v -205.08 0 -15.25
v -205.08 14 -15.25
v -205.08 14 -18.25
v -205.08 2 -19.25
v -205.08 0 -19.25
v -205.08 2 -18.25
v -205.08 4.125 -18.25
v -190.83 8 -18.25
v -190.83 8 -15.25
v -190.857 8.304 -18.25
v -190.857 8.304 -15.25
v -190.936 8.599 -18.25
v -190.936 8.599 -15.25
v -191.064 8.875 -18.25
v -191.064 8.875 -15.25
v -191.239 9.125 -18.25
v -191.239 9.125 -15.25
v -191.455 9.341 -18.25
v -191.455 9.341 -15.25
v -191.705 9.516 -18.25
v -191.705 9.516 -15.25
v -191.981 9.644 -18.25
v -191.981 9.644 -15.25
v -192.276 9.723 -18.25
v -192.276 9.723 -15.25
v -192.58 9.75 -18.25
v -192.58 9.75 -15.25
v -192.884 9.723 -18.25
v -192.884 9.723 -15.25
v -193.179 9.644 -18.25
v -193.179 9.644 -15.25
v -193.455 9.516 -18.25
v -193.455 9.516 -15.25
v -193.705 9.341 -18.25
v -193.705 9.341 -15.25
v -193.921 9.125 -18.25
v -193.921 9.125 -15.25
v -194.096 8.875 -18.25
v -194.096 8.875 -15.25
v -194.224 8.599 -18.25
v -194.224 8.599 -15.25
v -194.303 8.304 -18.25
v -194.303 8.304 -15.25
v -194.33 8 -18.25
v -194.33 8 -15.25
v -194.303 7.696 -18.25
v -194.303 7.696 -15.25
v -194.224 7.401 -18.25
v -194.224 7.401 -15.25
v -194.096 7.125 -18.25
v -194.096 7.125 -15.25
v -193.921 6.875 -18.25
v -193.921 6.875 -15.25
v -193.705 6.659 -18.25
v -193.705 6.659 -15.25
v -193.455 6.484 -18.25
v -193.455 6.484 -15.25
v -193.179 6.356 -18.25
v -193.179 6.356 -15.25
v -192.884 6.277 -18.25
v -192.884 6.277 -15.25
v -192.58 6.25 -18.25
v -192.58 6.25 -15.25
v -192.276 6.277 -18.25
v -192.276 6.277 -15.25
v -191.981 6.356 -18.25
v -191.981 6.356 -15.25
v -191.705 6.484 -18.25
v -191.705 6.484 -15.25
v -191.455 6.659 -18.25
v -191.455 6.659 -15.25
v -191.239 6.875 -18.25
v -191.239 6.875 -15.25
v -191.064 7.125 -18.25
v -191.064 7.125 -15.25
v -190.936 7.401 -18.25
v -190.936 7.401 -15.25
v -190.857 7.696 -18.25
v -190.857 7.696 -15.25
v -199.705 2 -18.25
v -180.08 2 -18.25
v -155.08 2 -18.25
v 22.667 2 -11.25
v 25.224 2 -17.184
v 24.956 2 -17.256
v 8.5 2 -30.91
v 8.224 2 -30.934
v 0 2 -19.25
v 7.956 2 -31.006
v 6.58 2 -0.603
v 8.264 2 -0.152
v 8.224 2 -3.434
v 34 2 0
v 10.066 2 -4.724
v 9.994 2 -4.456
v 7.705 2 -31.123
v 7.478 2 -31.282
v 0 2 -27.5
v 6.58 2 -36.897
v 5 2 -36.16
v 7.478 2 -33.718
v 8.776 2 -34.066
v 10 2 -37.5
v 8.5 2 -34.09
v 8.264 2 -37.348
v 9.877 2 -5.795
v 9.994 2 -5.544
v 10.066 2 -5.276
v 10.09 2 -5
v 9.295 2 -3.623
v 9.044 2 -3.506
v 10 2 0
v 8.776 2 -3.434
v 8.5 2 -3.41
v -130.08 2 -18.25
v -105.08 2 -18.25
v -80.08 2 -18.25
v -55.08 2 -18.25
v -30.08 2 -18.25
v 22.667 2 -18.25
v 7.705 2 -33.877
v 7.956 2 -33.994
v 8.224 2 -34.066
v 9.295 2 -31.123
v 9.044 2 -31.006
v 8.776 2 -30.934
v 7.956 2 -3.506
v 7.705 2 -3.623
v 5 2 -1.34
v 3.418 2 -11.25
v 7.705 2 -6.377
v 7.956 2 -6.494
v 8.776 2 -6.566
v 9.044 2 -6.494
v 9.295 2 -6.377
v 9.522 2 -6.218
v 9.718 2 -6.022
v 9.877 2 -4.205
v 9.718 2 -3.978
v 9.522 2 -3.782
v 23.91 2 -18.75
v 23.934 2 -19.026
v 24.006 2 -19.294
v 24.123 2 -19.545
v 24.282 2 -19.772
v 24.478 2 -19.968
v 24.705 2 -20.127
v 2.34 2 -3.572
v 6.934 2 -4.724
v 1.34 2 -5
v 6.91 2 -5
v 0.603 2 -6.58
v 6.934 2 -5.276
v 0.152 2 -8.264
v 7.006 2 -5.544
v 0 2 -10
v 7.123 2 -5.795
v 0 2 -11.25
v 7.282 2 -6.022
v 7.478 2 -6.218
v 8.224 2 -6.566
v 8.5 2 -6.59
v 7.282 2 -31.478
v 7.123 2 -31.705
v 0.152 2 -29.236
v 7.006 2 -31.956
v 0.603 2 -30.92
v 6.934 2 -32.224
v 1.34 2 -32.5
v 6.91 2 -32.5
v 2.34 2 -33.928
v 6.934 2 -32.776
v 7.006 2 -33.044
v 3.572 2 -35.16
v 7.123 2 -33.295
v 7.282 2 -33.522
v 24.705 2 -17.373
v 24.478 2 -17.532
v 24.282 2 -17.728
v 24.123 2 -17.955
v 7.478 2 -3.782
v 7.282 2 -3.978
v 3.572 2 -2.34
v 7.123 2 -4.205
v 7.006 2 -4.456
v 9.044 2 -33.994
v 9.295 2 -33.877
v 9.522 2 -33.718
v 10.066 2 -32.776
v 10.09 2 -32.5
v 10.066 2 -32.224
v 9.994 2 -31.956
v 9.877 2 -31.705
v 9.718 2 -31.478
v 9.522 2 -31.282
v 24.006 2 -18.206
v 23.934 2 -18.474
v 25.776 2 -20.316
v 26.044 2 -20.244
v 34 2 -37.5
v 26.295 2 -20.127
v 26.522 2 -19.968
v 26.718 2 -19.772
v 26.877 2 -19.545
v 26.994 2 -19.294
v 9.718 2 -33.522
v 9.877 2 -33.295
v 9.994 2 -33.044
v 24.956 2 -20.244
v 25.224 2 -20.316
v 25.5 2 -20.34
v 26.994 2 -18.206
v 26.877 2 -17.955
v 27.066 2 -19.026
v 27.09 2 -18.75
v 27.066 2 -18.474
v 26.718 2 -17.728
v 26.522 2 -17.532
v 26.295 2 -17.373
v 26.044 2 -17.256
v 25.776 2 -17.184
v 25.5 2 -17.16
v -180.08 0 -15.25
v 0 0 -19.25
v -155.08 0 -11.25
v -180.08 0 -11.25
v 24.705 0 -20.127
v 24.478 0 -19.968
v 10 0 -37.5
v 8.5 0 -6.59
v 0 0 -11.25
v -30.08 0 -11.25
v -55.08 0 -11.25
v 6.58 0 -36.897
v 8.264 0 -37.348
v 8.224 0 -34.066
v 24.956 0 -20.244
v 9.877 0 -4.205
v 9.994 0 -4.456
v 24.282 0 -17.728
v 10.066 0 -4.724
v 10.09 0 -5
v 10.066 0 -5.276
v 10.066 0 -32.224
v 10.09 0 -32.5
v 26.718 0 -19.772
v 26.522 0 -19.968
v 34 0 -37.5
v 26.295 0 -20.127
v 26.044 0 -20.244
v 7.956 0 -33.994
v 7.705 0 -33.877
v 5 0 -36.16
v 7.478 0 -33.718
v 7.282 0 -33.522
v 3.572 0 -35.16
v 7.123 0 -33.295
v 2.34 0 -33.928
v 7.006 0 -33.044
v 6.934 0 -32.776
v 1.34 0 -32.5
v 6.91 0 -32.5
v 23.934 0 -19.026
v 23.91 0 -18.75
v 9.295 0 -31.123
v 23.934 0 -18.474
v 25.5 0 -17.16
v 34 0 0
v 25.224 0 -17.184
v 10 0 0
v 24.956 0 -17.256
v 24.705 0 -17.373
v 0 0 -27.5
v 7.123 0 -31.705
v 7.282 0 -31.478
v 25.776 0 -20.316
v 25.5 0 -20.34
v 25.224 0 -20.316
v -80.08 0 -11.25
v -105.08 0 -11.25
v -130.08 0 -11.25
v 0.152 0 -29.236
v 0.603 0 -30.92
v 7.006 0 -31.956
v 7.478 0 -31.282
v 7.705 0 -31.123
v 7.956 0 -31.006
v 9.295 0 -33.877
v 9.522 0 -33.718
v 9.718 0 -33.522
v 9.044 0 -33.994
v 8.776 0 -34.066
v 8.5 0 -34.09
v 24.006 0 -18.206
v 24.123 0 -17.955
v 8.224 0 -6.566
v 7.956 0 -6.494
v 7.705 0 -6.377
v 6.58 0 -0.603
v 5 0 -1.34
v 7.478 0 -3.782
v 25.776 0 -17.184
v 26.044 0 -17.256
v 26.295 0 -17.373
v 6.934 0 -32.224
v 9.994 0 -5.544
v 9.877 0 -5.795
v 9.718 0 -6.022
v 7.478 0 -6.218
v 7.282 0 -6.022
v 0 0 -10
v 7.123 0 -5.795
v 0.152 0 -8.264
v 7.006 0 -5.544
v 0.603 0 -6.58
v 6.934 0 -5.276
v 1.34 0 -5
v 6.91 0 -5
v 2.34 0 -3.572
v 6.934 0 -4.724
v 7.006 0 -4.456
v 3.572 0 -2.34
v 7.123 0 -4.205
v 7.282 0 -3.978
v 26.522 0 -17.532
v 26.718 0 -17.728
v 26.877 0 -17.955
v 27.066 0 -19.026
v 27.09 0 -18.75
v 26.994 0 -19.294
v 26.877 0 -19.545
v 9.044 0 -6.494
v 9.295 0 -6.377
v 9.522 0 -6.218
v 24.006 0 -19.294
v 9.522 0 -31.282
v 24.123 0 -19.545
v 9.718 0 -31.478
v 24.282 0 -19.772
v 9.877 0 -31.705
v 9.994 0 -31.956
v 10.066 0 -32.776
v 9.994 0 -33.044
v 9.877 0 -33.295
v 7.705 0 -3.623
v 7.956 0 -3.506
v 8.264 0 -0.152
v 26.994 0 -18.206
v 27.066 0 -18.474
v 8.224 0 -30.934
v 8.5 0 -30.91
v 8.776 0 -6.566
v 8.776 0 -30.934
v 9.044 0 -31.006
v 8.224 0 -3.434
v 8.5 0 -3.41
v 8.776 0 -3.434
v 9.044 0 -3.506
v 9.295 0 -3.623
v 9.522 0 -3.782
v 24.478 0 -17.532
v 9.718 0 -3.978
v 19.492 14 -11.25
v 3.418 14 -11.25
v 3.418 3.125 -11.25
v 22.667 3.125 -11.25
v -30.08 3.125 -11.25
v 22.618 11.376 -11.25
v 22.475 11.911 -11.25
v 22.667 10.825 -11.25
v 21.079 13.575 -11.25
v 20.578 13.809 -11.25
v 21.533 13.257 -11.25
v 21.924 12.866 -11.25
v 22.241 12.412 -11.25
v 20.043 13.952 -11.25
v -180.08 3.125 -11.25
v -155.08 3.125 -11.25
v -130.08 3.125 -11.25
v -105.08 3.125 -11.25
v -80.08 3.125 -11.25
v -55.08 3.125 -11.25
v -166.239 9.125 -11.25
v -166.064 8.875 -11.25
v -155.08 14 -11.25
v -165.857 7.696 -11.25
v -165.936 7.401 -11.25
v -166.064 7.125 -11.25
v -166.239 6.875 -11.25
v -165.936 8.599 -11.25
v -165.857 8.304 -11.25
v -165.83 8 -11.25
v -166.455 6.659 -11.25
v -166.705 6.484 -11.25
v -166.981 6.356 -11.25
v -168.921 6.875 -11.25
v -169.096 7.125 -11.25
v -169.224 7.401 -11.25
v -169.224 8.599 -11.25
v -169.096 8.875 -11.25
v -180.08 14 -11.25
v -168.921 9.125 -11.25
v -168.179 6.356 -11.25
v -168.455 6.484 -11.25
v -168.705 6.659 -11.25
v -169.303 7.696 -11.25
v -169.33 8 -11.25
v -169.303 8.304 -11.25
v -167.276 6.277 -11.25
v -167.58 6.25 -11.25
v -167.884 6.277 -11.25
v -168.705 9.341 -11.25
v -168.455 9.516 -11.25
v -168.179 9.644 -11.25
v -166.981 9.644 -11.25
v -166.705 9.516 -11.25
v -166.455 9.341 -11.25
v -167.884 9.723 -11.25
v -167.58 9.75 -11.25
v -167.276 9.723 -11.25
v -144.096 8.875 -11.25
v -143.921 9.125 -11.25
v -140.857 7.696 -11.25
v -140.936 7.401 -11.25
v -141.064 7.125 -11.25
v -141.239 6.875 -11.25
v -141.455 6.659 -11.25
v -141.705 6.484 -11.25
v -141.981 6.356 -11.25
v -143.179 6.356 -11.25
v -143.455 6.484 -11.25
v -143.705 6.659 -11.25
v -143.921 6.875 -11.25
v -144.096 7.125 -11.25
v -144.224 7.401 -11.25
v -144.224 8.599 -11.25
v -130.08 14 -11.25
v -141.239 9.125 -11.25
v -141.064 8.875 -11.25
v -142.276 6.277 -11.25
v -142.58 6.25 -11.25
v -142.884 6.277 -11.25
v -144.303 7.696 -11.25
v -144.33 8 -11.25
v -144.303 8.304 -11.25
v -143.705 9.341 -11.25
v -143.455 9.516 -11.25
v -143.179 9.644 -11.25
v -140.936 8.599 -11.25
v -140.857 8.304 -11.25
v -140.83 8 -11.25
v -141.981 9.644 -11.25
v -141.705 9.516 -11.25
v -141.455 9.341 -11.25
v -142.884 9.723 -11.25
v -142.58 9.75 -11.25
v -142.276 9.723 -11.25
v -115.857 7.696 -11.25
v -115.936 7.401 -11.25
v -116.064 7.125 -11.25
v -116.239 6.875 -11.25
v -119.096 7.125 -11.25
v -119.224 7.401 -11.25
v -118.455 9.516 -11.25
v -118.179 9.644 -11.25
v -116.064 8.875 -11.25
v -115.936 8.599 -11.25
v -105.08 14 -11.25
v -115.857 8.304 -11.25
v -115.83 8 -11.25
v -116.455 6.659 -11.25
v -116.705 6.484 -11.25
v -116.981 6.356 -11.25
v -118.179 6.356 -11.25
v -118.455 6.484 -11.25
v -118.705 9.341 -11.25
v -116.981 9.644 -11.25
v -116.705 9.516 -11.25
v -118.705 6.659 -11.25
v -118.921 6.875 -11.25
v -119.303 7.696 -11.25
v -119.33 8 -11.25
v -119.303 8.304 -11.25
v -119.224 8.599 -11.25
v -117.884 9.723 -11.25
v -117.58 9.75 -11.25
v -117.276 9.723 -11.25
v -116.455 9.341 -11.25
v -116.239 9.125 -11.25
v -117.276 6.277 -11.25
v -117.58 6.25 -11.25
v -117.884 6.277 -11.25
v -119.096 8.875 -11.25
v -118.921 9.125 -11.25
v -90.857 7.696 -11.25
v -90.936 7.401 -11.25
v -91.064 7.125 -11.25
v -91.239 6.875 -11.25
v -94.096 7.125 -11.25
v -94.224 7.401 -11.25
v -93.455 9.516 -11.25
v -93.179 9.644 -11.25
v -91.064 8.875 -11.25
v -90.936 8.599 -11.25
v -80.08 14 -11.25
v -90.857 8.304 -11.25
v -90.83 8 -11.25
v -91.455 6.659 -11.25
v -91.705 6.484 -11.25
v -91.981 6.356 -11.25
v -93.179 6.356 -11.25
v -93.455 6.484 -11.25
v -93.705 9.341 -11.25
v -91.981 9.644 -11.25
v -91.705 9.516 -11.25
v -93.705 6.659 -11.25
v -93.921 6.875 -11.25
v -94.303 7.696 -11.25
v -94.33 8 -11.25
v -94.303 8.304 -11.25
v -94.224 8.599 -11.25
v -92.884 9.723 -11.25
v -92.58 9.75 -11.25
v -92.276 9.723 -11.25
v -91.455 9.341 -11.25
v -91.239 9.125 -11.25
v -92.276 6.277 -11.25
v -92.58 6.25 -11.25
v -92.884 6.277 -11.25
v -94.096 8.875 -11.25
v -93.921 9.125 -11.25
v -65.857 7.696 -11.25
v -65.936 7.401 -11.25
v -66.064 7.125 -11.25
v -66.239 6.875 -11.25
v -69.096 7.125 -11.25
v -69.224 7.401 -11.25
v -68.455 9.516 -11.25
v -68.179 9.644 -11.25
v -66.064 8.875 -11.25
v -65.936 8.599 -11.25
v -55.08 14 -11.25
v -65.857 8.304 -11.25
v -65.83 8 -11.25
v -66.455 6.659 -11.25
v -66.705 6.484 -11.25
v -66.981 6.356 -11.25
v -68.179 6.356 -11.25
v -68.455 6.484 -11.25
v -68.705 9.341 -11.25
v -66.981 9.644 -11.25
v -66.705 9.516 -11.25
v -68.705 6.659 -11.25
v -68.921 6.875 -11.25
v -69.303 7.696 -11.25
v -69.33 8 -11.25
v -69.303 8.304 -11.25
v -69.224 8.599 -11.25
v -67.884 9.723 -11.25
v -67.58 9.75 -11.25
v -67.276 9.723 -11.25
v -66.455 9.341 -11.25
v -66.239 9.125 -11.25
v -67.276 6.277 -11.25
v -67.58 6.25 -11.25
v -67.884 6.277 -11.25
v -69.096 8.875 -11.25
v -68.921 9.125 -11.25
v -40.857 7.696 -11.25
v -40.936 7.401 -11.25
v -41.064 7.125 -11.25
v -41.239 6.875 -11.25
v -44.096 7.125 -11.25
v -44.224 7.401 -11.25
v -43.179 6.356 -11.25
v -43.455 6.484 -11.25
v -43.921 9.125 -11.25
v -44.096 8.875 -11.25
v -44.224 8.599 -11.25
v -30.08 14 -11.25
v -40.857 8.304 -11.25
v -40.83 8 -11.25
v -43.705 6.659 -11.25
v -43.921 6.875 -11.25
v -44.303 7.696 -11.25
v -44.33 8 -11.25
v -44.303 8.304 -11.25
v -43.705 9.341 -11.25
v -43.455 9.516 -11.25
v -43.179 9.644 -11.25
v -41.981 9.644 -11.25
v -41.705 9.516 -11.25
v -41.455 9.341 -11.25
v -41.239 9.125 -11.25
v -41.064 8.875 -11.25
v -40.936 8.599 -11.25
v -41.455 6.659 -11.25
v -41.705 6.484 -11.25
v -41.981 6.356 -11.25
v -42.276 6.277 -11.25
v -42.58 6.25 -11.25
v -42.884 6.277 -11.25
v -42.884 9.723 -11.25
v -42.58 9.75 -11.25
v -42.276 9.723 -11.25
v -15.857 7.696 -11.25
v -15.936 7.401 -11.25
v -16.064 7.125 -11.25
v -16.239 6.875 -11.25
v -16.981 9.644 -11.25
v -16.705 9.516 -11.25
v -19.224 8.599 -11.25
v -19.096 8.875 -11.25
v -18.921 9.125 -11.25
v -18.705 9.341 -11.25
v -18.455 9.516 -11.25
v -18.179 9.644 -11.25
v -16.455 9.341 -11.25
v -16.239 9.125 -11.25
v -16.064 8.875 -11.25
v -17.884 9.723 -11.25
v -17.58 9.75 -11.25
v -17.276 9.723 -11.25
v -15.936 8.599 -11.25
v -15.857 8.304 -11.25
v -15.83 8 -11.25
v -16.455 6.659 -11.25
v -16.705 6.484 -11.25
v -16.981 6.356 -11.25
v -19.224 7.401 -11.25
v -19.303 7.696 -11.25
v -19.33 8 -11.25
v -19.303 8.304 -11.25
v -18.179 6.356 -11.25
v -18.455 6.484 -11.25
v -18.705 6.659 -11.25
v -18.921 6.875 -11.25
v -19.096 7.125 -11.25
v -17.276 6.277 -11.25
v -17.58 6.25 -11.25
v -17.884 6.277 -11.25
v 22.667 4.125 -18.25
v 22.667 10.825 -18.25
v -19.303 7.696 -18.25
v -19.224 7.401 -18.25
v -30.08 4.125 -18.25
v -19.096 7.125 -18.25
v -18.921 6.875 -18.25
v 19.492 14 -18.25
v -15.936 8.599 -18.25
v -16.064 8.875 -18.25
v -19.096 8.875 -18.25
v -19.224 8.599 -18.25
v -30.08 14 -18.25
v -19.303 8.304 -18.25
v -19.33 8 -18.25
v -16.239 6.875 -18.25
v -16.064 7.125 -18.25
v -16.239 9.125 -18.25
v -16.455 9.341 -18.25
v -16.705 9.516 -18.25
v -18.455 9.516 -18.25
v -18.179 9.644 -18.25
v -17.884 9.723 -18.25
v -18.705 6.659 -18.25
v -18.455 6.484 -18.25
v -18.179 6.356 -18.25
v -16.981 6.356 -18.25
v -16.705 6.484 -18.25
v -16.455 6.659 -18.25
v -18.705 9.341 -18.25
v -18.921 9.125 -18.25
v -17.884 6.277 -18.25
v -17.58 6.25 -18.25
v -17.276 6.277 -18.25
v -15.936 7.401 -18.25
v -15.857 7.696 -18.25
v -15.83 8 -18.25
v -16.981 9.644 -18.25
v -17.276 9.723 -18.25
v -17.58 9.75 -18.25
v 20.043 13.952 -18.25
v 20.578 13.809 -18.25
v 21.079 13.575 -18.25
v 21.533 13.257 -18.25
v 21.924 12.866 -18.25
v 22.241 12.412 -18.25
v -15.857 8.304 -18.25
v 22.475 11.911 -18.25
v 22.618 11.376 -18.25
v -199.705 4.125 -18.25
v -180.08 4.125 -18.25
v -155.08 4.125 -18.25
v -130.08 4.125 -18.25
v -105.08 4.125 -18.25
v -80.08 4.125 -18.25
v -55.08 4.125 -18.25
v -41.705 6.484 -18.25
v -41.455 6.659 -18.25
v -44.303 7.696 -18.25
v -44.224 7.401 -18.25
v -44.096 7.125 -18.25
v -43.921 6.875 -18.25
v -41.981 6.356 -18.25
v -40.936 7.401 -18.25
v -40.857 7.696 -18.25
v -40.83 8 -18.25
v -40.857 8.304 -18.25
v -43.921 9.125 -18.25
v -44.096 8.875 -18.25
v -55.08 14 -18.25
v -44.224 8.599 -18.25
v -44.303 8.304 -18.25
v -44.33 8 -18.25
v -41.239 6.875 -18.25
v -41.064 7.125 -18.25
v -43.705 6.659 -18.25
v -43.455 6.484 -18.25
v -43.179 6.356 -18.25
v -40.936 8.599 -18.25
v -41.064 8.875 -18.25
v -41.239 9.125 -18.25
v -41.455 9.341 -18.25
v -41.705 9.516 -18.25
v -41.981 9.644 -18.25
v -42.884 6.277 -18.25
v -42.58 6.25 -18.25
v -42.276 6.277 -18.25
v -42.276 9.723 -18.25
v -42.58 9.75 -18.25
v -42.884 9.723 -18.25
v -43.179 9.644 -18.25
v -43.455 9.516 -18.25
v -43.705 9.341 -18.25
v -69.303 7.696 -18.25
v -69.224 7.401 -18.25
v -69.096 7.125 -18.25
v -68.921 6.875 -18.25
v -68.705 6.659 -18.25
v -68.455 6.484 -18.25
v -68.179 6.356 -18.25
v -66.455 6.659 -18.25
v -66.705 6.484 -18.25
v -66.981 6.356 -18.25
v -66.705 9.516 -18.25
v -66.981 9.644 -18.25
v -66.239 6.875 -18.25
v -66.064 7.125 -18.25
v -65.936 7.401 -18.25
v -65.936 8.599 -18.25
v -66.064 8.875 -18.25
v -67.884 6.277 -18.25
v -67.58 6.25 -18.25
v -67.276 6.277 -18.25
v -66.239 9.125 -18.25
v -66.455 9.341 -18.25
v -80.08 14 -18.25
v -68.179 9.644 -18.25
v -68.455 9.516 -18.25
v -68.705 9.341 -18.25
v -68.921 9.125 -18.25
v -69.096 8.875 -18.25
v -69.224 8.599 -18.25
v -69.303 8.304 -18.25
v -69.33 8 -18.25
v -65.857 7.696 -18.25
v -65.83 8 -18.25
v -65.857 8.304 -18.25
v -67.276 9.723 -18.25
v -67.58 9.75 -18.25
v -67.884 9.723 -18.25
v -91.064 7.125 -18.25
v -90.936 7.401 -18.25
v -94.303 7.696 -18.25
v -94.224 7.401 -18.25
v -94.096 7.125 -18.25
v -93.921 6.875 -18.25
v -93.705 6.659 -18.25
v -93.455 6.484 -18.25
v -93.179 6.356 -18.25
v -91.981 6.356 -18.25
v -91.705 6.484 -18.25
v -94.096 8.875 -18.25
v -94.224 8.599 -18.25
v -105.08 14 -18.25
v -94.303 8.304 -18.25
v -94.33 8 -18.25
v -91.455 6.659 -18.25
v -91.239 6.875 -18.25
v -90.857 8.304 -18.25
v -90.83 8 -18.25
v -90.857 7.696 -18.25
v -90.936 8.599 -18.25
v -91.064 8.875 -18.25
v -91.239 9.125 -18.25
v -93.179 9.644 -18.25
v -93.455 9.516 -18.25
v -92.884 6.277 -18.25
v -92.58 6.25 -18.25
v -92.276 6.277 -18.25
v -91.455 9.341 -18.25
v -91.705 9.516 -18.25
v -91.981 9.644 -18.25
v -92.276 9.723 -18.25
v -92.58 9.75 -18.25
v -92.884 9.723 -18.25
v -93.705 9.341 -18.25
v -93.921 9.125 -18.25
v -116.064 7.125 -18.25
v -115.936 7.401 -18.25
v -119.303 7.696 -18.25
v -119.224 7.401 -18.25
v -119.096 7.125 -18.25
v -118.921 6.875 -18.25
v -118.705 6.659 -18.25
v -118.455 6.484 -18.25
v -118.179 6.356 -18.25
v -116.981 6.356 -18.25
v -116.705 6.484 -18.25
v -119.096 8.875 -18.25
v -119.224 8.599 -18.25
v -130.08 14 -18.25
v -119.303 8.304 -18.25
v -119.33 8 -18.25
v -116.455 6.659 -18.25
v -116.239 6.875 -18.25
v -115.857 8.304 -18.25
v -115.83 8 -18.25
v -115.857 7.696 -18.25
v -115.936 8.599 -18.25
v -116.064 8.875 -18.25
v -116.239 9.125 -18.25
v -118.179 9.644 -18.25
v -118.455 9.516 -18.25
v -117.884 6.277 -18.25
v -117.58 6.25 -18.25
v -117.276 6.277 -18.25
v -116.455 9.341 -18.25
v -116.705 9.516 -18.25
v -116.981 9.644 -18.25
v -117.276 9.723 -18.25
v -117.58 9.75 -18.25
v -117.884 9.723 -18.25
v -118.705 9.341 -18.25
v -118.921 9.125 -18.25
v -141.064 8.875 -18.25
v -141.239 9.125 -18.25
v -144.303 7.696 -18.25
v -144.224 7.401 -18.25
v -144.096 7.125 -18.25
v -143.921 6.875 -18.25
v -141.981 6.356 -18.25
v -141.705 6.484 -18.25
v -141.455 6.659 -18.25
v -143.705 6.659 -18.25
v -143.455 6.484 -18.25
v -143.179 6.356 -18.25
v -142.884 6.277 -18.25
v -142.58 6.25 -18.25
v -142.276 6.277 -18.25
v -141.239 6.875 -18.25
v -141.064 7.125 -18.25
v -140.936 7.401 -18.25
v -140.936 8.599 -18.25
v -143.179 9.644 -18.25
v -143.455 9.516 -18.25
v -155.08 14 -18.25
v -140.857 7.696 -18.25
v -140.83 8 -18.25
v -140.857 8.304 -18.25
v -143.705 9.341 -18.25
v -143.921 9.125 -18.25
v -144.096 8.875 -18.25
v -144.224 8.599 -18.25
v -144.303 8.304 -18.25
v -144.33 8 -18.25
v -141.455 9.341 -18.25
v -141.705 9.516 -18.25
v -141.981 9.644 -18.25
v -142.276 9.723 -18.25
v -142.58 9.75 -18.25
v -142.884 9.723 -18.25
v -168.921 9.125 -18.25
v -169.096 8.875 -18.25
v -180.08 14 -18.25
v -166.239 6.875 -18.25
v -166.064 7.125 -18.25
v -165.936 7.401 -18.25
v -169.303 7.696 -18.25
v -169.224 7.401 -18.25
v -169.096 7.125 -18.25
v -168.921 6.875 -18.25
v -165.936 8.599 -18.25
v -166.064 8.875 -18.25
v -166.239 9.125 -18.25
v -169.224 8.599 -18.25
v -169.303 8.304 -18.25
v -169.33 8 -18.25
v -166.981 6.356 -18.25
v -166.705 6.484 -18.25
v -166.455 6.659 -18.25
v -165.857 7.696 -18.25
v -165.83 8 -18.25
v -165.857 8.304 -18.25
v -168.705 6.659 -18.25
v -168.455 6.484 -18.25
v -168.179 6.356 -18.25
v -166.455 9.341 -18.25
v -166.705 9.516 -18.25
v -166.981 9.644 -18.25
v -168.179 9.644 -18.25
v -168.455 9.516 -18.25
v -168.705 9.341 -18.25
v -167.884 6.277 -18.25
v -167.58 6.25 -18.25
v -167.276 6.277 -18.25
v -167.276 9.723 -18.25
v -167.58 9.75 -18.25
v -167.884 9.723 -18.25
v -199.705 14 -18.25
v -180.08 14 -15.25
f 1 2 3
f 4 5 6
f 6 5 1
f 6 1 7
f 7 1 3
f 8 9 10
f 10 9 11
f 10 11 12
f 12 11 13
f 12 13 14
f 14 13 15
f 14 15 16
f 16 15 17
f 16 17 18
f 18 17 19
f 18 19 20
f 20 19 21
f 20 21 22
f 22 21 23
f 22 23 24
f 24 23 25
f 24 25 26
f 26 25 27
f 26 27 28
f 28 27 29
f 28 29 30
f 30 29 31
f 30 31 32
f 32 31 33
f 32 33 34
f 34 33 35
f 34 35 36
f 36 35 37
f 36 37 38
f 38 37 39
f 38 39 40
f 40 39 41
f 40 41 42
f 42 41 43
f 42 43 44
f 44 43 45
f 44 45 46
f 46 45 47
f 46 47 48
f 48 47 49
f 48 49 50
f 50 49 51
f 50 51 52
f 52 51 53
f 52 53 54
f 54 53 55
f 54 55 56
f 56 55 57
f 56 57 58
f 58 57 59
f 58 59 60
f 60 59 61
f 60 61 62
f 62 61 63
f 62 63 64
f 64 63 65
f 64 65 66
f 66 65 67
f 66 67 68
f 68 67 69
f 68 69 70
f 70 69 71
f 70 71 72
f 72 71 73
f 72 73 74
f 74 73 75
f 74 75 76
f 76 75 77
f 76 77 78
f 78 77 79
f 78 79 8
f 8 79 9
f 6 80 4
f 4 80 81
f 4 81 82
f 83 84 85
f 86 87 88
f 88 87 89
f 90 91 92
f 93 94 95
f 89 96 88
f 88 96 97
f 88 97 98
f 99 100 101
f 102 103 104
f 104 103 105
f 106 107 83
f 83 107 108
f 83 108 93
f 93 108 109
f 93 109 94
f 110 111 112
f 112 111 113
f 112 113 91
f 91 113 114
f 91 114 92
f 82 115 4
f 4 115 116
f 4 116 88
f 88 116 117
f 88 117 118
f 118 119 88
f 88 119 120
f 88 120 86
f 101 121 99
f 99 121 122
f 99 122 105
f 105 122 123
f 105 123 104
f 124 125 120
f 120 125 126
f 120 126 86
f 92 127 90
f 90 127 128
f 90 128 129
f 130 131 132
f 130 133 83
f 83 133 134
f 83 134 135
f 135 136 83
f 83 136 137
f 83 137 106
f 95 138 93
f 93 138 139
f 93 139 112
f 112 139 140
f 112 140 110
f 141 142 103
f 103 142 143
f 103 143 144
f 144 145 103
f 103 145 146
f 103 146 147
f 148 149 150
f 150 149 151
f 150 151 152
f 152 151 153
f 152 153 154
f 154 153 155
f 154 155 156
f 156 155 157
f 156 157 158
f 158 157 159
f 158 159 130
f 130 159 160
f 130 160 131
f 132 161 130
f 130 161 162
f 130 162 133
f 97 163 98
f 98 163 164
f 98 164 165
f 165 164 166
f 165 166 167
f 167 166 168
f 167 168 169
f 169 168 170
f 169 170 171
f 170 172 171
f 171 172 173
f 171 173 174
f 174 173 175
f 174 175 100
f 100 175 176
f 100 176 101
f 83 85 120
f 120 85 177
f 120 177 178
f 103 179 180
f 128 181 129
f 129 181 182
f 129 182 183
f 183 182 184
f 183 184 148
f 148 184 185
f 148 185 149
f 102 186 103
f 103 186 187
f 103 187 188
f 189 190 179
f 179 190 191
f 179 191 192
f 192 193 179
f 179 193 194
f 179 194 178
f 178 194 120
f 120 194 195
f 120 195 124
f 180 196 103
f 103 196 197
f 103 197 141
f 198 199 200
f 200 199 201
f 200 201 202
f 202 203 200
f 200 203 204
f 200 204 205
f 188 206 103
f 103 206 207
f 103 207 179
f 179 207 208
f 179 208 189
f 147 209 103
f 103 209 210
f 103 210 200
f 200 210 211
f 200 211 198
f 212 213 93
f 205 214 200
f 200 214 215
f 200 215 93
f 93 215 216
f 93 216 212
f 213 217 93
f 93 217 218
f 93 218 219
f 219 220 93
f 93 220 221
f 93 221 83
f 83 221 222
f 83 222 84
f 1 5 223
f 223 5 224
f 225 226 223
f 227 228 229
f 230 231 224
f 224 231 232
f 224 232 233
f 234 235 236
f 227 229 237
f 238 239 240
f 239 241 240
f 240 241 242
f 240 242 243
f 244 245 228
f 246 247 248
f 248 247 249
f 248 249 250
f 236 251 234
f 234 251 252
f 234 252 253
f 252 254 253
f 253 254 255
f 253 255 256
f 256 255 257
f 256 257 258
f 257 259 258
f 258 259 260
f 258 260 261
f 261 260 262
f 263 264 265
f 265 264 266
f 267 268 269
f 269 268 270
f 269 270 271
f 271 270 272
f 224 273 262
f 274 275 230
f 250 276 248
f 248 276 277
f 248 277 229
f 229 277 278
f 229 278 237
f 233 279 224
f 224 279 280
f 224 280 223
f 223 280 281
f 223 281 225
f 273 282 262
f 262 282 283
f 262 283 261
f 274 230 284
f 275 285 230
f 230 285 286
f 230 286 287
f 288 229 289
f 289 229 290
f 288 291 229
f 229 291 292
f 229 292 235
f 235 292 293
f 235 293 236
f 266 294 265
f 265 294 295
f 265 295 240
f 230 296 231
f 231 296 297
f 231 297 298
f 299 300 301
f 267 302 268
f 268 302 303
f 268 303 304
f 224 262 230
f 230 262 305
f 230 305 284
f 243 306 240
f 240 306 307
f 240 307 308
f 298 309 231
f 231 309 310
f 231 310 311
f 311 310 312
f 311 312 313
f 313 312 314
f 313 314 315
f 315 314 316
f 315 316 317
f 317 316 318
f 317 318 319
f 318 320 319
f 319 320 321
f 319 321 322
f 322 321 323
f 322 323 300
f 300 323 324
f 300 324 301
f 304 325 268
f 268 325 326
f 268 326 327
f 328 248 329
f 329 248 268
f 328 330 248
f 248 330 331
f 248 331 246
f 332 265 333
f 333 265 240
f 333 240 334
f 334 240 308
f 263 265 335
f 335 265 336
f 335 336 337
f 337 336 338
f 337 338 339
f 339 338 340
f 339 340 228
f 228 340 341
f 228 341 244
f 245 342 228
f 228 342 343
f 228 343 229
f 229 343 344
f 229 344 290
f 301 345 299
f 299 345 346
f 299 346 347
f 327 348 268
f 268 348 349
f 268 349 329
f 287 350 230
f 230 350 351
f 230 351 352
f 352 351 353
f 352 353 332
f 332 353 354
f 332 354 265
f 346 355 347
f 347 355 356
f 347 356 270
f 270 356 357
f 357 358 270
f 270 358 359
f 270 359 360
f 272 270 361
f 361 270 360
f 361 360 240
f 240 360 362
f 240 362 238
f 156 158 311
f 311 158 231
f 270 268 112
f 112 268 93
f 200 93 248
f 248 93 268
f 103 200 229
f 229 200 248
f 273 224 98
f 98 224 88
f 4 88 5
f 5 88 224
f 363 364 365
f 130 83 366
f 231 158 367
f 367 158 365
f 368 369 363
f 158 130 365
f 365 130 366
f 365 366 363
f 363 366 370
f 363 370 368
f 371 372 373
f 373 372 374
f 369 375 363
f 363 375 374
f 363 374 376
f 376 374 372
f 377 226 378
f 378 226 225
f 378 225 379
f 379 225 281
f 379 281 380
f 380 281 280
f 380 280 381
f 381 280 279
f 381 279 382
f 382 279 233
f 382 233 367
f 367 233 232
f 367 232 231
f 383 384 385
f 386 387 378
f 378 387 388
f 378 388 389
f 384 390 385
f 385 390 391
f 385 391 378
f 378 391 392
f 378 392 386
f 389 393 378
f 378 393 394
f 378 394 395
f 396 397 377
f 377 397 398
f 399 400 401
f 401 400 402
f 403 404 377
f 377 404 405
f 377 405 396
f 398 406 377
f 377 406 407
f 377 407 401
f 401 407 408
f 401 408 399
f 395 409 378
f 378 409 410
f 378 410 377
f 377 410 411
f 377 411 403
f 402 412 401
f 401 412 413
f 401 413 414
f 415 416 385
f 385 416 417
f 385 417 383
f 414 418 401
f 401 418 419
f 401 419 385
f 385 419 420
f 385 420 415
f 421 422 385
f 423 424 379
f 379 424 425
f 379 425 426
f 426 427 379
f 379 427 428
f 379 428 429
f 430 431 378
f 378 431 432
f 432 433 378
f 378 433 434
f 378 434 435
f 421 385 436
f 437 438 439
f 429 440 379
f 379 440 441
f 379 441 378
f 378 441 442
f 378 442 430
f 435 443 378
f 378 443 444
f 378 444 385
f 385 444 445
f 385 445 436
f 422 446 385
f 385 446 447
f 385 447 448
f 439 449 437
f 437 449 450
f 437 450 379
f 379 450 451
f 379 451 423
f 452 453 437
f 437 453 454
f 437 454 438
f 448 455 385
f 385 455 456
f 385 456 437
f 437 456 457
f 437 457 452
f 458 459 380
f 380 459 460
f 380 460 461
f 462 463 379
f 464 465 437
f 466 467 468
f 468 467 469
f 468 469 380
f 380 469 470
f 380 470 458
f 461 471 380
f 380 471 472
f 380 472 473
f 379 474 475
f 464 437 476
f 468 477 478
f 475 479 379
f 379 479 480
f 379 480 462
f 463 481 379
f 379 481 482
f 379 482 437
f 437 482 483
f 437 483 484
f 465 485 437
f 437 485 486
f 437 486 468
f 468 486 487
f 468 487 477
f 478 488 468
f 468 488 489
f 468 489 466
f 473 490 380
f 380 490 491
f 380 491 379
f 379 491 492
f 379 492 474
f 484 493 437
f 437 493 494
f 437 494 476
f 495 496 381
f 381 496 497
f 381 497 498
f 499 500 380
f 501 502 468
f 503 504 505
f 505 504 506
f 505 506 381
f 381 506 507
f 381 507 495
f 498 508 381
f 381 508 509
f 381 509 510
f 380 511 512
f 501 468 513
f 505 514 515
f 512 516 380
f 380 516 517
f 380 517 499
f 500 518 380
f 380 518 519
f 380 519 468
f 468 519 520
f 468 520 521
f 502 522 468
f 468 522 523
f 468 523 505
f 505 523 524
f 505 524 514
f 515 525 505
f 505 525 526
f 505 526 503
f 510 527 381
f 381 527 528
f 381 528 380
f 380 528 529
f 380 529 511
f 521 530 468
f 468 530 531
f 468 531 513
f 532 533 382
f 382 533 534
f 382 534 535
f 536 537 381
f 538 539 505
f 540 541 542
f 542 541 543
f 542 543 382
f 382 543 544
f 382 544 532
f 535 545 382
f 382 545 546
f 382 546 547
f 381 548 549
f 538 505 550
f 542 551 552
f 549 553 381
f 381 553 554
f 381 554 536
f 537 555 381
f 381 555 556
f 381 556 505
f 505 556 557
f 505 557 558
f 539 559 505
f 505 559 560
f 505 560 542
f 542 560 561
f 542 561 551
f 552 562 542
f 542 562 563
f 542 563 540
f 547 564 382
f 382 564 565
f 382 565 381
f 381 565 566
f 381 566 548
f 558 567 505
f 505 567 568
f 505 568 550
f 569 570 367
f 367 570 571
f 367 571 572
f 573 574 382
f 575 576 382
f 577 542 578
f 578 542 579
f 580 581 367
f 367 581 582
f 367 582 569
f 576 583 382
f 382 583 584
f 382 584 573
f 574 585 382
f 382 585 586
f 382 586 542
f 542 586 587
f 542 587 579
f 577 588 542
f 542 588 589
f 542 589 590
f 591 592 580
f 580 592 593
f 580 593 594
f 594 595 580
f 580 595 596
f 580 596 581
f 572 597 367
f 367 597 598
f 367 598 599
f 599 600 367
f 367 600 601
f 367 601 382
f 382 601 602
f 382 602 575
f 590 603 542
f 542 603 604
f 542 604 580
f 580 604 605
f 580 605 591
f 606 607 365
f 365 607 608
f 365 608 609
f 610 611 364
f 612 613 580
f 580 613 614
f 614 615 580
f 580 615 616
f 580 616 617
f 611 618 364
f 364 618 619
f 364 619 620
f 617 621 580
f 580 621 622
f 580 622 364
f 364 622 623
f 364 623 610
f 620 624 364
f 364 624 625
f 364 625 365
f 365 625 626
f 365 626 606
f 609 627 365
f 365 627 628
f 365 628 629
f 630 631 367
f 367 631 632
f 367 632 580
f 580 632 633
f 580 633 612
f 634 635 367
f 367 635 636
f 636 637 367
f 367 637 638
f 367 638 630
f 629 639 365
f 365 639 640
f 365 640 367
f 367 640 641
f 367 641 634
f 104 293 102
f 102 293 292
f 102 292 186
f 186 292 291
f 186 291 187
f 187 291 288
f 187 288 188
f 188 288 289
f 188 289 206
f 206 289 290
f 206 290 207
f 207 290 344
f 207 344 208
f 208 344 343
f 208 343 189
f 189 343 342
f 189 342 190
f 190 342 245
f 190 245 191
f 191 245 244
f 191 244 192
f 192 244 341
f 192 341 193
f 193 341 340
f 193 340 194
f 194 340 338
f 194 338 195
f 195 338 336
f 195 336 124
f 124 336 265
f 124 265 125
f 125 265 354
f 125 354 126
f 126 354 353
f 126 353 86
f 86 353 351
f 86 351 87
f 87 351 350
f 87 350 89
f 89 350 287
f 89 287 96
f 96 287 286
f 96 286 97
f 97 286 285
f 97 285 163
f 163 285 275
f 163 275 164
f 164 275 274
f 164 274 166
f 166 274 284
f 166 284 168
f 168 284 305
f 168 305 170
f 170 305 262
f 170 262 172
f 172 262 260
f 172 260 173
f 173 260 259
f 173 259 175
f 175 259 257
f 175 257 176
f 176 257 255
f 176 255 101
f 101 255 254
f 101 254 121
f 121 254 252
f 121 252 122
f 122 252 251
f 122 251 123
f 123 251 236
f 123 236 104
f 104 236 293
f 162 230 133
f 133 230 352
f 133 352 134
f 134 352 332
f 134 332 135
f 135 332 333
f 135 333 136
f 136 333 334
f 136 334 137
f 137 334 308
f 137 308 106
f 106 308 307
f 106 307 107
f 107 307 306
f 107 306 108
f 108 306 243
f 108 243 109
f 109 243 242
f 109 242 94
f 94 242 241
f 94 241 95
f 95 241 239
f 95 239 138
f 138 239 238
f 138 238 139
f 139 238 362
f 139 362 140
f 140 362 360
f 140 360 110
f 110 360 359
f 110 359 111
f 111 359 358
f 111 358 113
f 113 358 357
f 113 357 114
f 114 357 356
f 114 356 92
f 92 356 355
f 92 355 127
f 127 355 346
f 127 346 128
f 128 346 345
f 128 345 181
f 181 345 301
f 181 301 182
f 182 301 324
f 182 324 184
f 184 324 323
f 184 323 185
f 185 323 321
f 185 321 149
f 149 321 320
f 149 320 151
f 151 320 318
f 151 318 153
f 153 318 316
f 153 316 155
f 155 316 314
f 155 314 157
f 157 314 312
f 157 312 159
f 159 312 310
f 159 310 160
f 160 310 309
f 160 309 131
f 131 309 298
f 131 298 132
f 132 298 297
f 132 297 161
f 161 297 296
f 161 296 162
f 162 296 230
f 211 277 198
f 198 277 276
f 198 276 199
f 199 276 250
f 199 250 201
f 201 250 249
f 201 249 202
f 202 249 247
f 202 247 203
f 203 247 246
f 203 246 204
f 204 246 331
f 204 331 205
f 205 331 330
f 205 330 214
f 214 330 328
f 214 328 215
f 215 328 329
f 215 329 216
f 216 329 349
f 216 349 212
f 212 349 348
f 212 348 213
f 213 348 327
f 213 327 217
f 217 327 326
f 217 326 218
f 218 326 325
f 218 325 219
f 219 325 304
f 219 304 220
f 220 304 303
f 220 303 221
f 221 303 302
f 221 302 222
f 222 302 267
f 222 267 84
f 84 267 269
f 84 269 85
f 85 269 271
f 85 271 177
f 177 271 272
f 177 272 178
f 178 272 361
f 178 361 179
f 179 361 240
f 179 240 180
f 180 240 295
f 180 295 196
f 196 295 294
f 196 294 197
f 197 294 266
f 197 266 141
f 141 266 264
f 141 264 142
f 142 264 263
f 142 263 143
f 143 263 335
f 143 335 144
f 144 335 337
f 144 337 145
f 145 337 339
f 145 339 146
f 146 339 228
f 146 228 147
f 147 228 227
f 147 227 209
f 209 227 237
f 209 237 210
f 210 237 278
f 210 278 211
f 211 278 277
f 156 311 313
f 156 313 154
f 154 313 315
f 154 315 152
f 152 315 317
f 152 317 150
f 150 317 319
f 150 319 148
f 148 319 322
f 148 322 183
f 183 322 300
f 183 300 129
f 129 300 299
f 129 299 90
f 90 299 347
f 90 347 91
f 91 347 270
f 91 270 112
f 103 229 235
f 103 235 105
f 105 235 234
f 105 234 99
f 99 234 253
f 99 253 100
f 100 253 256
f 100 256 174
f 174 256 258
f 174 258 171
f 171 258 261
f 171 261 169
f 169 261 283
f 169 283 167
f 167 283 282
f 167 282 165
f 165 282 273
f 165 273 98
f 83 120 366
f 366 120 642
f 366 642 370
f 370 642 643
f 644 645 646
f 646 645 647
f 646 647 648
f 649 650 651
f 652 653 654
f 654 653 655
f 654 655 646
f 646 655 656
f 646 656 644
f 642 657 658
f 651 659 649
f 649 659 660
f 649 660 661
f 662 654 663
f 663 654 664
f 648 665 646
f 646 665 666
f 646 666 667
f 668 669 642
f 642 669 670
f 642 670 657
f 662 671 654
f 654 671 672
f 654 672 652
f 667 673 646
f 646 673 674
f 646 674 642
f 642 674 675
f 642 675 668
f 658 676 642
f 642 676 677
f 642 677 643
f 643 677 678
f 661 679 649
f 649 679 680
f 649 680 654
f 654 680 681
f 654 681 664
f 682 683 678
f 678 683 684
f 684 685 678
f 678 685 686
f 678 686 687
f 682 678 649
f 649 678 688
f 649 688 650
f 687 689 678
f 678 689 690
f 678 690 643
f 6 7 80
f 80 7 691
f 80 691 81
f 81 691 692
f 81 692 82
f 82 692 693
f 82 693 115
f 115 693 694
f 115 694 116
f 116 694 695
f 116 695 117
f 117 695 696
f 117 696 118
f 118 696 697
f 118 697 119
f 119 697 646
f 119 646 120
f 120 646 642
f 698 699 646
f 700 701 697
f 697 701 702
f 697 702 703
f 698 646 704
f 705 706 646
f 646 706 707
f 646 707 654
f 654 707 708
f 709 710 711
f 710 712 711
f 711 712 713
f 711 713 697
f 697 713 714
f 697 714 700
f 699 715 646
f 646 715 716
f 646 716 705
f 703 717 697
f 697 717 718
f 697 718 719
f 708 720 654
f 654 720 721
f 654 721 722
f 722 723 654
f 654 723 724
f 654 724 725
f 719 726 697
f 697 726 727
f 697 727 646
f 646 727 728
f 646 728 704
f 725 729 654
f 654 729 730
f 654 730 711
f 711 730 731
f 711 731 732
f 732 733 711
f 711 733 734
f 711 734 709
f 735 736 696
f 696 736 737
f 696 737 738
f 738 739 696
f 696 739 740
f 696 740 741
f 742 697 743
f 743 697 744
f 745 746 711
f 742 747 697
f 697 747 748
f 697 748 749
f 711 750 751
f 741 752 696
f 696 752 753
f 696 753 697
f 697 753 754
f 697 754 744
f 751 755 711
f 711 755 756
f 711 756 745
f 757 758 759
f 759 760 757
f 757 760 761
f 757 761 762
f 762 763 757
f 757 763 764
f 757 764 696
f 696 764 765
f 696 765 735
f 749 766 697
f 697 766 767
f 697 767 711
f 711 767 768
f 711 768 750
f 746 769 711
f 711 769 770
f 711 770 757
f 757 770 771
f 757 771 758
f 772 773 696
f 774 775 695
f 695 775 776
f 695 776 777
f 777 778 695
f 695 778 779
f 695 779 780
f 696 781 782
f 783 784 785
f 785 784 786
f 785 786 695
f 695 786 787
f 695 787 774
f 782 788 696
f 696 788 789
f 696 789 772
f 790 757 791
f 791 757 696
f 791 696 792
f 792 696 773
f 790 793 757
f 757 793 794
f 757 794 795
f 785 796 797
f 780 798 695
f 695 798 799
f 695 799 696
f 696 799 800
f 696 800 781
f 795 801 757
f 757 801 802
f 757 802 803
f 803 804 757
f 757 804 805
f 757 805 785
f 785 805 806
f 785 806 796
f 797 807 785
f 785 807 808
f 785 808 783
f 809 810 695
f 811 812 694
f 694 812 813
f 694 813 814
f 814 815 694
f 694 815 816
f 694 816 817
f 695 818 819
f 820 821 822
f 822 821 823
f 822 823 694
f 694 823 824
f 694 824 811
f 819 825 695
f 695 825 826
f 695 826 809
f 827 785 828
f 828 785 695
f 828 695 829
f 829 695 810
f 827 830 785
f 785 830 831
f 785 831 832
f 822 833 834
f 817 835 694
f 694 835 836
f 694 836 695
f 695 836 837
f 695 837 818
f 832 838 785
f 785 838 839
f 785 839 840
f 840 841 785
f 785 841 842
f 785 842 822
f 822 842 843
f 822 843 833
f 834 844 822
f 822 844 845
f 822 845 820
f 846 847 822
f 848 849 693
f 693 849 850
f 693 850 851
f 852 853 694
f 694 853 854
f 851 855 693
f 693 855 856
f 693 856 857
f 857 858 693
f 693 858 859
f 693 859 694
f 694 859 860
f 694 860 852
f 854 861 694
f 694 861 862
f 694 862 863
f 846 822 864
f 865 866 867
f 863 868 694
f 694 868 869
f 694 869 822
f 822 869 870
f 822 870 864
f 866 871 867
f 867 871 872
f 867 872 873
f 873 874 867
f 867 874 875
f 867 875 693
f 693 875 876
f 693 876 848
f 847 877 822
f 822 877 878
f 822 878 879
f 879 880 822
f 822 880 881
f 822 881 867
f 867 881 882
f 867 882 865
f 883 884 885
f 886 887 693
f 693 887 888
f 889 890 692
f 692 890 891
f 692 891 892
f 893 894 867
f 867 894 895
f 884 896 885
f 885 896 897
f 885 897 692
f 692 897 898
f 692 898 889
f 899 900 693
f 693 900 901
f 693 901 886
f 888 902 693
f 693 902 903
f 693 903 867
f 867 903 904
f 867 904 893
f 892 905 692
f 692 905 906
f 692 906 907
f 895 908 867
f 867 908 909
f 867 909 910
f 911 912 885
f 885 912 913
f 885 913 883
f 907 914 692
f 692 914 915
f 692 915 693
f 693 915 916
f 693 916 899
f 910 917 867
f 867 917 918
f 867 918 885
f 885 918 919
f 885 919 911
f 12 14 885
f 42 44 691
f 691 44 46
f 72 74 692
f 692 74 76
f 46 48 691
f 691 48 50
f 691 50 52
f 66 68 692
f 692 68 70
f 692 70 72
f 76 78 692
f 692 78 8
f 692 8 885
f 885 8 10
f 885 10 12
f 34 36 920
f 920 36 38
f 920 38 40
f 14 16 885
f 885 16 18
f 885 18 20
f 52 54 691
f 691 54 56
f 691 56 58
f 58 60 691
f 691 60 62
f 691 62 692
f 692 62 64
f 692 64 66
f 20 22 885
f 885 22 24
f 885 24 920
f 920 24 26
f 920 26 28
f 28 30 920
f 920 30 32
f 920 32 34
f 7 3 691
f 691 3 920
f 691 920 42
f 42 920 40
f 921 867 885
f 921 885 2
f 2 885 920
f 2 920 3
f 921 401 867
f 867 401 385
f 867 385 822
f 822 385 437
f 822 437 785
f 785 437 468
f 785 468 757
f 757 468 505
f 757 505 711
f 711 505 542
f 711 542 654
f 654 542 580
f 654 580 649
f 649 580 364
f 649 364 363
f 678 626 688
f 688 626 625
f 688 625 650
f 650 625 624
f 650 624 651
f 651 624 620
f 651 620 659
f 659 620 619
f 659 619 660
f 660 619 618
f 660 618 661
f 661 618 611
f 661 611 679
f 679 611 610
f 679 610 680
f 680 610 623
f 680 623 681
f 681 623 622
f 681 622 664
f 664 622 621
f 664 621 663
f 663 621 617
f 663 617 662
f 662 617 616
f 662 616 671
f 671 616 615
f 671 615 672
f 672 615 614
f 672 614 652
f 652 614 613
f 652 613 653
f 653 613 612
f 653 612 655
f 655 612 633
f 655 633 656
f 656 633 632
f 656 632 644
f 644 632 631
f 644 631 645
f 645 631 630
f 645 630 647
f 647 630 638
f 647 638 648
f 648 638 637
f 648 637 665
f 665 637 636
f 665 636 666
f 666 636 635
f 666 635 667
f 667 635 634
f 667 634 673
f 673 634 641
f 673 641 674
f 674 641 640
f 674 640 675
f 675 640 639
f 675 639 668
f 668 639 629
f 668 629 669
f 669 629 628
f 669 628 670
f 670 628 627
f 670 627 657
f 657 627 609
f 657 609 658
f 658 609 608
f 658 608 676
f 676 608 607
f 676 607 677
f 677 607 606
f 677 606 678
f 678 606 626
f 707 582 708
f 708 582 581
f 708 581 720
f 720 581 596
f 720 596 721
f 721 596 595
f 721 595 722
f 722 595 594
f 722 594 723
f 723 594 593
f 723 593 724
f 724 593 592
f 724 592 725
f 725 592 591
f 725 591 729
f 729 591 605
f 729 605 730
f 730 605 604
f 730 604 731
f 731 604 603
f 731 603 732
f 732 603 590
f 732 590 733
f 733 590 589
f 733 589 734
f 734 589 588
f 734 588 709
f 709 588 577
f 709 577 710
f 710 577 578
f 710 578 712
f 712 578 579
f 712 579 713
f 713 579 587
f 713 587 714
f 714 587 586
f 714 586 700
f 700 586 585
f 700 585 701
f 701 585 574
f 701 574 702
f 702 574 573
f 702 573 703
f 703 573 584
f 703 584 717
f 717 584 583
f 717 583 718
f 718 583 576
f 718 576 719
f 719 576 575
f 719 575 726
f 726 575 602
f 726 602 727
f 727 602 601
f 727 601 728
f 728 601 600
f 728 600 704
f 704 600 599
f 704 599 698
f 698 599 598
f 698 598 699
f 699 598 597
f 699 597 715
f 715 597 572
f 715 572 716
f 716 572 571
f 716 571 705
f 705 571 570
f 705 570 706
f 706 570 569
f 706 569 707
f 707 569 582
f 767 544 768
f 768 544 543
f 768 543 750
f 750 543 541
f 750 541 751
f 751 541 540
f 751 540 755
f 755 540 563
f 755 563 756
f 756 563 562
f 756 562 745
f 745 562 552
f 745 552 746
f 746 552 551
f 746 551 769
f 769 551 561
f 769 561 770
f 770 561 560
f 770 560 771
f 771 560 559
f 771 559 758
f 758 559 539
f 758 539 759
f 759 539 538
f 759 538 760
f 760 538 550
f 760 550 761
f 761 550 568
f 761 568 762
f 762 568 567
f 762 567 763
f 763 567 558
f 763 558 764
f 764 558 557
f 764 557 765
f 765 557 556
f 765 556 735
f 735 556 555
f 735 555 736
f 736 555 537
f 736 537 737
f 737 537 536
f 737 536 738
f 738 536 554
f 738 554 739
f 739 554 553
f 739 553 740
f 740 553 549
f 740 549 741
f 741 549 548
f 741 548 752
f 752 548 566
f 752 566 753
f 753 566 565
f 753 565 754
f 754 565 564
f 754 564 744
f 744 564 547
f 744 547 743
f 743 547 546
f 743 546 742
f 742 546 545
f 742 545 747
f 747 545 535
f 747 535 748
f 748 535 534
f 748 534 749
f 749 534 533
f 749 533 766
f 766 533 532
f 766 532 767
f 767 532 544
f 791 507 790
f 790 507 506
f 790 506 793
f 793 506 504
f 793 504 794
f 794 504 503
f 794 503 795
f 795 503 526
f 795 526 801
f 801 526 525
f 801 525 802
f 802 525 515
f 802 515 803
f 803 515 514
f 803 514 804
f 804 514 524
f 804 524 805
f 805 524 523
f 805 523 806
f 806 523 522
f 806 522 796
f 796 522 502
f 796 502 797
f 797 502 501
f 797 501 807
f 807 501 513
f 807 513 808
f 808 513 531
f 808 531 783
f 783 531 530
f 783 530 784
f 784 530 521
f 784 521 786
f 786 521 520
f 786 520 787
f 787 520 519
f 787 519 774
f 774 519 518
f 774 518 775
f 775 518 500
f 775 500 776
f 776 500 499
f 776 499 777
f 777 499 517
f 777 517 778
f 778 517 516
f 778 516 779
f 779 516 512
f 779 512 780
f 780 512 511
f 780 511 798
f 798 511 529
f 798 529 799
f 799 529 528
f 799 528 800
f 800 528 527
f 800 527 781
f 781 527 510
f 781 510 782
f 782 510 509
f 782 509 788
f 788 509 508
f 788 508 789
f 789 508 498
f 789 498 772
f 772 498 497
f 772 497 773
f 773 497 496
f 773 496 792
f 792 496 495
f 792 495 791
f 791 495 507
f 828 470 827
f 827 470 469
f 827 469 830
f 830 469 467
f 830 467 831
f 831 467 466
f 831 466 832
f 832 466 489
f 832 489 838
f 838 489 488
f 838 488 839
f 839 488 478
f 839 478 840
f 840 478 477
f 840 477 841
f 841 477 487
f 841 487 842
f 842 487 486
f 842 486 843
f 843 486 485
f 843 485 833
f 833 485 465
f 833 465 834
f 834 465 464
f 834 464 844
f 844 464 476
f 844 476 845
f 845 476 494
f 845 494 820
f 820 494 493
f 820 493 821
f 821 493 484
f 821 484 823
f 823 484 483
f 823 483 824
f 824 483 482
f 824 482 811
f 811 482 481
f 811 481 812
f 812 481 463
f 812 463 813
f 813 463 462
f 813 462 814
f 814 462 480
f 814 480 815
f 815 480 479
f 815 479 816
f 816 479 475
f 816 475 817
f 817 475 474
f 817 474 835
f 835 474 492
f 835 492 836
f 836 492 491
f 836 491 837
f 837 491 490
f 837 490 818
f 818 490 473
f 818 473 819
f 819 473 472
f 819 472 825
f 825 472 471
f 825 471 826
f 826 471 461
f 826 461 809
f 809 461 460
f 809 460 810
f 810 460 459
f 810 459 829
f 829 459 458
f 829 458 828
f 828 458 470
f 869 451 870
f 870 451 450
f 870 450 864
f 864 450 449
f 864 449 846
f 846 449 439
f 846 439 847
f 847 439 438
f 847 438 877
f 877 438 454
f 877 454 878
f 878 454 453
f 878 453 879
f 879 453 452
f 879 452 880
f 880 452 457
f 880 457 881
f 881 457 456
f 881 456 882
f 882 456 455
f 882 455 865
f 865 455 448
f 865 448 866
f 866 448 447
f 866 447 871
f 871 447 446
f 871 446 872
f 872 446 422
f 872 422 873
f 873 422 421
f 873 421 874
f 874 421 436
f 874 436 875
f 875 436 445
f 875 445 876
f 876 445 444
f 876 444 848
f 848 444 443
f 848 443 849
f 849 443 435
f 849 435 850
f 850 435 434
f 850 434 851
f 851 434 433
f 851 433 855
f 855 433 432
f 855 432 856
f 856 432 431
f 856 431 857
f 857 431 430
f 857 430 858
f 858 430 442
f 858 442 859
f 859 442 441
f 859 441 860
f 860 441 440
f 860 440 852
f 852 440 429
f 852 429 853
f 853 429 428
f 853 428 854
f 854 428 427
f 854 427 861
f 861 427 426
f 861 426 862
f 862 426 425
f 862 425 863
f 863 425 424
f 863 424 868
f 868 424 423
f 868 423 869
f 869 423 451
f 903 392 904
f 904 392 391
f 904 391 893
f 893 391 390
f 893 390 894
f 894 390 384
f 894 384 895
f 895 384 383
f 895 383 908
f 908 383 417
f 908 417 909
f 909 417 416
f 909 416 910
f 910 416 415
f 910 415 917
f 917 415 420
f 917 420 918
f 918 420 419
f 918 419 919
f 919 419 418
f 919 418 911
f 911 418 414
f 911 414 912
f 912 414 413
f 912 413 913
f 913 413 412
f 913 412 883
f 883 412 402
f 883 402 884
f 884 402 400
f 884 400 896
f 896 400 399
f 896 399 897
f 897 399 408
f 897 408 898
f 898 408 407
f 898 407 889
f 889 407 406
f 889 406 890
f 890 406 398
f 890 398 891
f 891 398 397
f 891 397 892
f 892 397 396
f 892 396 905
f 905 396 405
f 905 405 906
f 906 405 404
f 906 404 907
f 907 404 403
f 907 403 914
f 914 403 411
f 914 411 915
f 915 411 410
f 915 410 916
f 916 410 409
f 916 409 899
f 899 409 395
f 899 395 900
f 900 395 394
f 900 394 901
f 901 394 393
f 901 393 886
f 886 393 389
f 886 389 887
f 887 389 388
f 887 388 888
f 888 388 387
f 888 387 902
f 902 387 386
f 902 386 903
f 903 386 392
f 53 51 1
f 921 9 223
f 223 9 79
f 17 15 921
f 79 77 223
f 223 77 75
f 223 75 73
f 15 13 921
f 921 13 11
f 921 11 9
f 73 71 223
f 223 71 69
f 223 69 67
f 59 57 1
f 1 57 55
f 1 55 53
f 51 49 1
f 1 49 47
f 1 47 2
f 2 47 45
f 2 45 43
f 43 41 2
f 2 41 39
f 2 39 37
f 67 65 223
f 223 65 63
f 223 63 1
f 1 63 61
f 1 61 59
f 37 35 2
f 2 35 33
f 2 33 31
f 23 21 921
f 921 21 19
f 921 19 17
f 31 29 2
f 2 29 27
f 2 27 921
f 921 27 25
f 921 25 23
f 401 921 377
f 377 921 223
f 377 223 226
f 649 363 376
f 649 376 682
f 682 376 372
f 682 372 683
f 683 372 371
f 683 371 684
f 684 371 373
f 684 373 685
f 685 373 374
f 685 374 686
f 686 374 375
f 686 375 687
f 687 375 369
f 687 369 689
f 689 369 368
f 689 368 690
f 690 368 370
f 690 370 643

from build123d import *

# Parameters (mm, degrees)
TOPSKETCH1_R                        = 1.59
TOPBOSS_EXTRUDE1_DEPTH              = 2
FILLET1_R                           = 10
LINEARRAILHEIGHTSKETCH2_W           = 227.746666667
LINEARRAILHEIGHTSKETCH2_H           = 7
LINEARRAILHEIGHTBOSS_EXTRUDE2_DEPTH = 12
LINEARRAILHOLESSKETCH3_R            = 1.75
LINEARRAILHOLESCUT_EXTRUDE1_DEPTH   = 208.226612432
CONNECTINGPLATESKETCH1_W            = 25
CONNECTINGPLATESKETCH1_H            = 14
CONNECTINGPLATECUT_EXTRUDE1_DEPTH   = 4
FILLET2_R                           = 3.175


with BuildPart() as part:
    # TopSketch1 → TopBoss-Extrude1 (new body)
    with BuildSketch(Plane(origin=(0, 0, 0), x_dir=(1, 0, 0), z_dir=(0, 1, 0))):
        Polygon((0, 0), (34, 0), (34, 37.5), (0, 37.5), (0, 19.25), (-205.08, 19.25), (-205.08, 11.25), (0, 11.25), align=None)
        with Locations(Location((8.5, 32.5, 0), (0, 0, 270))):
            Circle(TOPSKETCH1_R, mode=Mode.SUBTRACT)
        with Locations(Location((8.5, 5, 0), (0, 0, 270))):
            Circle(TOPSKETCH1_R, mode=Mode.SUBTRACT)
        with Locations(Location((25.5, 18.75, 0), (0, 0, 270))):
            Circle(TOPSKETCH1_R, mode=Mode.SUBTRACT)
    extrude(amount=TOPBOSS_EXTRUDE1_DEPTH)

    # Fillet1
    fillet1_edges = [part.edges().sort_by_distance(p)[0] for p in [
        (0, 1, -37.5),
        (0, 1, 0),
    ]]
    fillet(fillet1_edges, radius=FILLET1_R)

    # LinearRailHEightSketch2 → LinearRailHeightBoss-Extrude2 (add)
    with BuildSketch(Plane(origin=(0, 2, 0), x_dir=(1, 0, 0), z_dir=(0, 1, 0))):
        with Locations((-91.206666667, 14.75)):
            Rectangle(LINEARRAILHEIGHTSKETCH2_W, LINEARRAILHEIGHTSKETCH2_H)
    extrude(amount=LINEARRAILHEIGHTBOSS_EXTRUDE2_DEPTH)

    # LinearRailHolesSketch3 → LinearRailHolesCut-Extrude1 (cut, through all)
    with BuildSketch(Plane.XY.offset(-11.25)):
        with Locations((-192.58, 8)):
            Circle(LINEARRAILHOLESSKETCH3_R)
        with Locations((-167.58, 8)):
            Circle(LINEARRAILHOLESSKETCH3_R)
        with Locations((-142.58, 8)):
            Circle(LINEARRAILHOLESSKETCH3_R)
        with Locations((-117.58, 8)):
            Circle(LINEARRAILHOLESSKETCH3_R)
        with Locations((-92.58, 8)):
            Circle(LINEARRAILHOLESSKETCH3_R)
        with Locations((-67.58, 8)):
            Circle(LINEARRAILHOLESSKETCH3_R)
        with Locations((-42.58, 8)):
            Circle(LINEARRAILHOLESSKETCH3_R)
        with Locations((-17.58, 8)):
            Circle(LINEARRAILHOLESSKETCH3_R)
    extrude(amount=-LINEARRAILHOLESCUT_EXTRUDE1_DEPTH, mode=Mode.SUBTRACT)

    # ConnectingPlateSketch1 → ConnectingPlateCut-Extrude1 (cut)
    with BuildSketch(Plane.XY.offset(-11.25)):
        with Locations((-192.58, 7)):
            Rectangle(CONNECTINGPLATESKETCH1_W, CONNECTINGPLATESKETCH1_H)
    extrude(amount=-CONNECTINGPLATECUT_EXTRUDE1_DEPTH, mode=Mode.SUBTRACT)

    # Fillet2
    fillet2_edges = [part.edges().sort_by_distance(p)[0] for p in [
        (22.666666667, 14, -14.75),
    ]]
    fillet(fillet2_edges, radius=FILLET2_R)


solid = part.part
